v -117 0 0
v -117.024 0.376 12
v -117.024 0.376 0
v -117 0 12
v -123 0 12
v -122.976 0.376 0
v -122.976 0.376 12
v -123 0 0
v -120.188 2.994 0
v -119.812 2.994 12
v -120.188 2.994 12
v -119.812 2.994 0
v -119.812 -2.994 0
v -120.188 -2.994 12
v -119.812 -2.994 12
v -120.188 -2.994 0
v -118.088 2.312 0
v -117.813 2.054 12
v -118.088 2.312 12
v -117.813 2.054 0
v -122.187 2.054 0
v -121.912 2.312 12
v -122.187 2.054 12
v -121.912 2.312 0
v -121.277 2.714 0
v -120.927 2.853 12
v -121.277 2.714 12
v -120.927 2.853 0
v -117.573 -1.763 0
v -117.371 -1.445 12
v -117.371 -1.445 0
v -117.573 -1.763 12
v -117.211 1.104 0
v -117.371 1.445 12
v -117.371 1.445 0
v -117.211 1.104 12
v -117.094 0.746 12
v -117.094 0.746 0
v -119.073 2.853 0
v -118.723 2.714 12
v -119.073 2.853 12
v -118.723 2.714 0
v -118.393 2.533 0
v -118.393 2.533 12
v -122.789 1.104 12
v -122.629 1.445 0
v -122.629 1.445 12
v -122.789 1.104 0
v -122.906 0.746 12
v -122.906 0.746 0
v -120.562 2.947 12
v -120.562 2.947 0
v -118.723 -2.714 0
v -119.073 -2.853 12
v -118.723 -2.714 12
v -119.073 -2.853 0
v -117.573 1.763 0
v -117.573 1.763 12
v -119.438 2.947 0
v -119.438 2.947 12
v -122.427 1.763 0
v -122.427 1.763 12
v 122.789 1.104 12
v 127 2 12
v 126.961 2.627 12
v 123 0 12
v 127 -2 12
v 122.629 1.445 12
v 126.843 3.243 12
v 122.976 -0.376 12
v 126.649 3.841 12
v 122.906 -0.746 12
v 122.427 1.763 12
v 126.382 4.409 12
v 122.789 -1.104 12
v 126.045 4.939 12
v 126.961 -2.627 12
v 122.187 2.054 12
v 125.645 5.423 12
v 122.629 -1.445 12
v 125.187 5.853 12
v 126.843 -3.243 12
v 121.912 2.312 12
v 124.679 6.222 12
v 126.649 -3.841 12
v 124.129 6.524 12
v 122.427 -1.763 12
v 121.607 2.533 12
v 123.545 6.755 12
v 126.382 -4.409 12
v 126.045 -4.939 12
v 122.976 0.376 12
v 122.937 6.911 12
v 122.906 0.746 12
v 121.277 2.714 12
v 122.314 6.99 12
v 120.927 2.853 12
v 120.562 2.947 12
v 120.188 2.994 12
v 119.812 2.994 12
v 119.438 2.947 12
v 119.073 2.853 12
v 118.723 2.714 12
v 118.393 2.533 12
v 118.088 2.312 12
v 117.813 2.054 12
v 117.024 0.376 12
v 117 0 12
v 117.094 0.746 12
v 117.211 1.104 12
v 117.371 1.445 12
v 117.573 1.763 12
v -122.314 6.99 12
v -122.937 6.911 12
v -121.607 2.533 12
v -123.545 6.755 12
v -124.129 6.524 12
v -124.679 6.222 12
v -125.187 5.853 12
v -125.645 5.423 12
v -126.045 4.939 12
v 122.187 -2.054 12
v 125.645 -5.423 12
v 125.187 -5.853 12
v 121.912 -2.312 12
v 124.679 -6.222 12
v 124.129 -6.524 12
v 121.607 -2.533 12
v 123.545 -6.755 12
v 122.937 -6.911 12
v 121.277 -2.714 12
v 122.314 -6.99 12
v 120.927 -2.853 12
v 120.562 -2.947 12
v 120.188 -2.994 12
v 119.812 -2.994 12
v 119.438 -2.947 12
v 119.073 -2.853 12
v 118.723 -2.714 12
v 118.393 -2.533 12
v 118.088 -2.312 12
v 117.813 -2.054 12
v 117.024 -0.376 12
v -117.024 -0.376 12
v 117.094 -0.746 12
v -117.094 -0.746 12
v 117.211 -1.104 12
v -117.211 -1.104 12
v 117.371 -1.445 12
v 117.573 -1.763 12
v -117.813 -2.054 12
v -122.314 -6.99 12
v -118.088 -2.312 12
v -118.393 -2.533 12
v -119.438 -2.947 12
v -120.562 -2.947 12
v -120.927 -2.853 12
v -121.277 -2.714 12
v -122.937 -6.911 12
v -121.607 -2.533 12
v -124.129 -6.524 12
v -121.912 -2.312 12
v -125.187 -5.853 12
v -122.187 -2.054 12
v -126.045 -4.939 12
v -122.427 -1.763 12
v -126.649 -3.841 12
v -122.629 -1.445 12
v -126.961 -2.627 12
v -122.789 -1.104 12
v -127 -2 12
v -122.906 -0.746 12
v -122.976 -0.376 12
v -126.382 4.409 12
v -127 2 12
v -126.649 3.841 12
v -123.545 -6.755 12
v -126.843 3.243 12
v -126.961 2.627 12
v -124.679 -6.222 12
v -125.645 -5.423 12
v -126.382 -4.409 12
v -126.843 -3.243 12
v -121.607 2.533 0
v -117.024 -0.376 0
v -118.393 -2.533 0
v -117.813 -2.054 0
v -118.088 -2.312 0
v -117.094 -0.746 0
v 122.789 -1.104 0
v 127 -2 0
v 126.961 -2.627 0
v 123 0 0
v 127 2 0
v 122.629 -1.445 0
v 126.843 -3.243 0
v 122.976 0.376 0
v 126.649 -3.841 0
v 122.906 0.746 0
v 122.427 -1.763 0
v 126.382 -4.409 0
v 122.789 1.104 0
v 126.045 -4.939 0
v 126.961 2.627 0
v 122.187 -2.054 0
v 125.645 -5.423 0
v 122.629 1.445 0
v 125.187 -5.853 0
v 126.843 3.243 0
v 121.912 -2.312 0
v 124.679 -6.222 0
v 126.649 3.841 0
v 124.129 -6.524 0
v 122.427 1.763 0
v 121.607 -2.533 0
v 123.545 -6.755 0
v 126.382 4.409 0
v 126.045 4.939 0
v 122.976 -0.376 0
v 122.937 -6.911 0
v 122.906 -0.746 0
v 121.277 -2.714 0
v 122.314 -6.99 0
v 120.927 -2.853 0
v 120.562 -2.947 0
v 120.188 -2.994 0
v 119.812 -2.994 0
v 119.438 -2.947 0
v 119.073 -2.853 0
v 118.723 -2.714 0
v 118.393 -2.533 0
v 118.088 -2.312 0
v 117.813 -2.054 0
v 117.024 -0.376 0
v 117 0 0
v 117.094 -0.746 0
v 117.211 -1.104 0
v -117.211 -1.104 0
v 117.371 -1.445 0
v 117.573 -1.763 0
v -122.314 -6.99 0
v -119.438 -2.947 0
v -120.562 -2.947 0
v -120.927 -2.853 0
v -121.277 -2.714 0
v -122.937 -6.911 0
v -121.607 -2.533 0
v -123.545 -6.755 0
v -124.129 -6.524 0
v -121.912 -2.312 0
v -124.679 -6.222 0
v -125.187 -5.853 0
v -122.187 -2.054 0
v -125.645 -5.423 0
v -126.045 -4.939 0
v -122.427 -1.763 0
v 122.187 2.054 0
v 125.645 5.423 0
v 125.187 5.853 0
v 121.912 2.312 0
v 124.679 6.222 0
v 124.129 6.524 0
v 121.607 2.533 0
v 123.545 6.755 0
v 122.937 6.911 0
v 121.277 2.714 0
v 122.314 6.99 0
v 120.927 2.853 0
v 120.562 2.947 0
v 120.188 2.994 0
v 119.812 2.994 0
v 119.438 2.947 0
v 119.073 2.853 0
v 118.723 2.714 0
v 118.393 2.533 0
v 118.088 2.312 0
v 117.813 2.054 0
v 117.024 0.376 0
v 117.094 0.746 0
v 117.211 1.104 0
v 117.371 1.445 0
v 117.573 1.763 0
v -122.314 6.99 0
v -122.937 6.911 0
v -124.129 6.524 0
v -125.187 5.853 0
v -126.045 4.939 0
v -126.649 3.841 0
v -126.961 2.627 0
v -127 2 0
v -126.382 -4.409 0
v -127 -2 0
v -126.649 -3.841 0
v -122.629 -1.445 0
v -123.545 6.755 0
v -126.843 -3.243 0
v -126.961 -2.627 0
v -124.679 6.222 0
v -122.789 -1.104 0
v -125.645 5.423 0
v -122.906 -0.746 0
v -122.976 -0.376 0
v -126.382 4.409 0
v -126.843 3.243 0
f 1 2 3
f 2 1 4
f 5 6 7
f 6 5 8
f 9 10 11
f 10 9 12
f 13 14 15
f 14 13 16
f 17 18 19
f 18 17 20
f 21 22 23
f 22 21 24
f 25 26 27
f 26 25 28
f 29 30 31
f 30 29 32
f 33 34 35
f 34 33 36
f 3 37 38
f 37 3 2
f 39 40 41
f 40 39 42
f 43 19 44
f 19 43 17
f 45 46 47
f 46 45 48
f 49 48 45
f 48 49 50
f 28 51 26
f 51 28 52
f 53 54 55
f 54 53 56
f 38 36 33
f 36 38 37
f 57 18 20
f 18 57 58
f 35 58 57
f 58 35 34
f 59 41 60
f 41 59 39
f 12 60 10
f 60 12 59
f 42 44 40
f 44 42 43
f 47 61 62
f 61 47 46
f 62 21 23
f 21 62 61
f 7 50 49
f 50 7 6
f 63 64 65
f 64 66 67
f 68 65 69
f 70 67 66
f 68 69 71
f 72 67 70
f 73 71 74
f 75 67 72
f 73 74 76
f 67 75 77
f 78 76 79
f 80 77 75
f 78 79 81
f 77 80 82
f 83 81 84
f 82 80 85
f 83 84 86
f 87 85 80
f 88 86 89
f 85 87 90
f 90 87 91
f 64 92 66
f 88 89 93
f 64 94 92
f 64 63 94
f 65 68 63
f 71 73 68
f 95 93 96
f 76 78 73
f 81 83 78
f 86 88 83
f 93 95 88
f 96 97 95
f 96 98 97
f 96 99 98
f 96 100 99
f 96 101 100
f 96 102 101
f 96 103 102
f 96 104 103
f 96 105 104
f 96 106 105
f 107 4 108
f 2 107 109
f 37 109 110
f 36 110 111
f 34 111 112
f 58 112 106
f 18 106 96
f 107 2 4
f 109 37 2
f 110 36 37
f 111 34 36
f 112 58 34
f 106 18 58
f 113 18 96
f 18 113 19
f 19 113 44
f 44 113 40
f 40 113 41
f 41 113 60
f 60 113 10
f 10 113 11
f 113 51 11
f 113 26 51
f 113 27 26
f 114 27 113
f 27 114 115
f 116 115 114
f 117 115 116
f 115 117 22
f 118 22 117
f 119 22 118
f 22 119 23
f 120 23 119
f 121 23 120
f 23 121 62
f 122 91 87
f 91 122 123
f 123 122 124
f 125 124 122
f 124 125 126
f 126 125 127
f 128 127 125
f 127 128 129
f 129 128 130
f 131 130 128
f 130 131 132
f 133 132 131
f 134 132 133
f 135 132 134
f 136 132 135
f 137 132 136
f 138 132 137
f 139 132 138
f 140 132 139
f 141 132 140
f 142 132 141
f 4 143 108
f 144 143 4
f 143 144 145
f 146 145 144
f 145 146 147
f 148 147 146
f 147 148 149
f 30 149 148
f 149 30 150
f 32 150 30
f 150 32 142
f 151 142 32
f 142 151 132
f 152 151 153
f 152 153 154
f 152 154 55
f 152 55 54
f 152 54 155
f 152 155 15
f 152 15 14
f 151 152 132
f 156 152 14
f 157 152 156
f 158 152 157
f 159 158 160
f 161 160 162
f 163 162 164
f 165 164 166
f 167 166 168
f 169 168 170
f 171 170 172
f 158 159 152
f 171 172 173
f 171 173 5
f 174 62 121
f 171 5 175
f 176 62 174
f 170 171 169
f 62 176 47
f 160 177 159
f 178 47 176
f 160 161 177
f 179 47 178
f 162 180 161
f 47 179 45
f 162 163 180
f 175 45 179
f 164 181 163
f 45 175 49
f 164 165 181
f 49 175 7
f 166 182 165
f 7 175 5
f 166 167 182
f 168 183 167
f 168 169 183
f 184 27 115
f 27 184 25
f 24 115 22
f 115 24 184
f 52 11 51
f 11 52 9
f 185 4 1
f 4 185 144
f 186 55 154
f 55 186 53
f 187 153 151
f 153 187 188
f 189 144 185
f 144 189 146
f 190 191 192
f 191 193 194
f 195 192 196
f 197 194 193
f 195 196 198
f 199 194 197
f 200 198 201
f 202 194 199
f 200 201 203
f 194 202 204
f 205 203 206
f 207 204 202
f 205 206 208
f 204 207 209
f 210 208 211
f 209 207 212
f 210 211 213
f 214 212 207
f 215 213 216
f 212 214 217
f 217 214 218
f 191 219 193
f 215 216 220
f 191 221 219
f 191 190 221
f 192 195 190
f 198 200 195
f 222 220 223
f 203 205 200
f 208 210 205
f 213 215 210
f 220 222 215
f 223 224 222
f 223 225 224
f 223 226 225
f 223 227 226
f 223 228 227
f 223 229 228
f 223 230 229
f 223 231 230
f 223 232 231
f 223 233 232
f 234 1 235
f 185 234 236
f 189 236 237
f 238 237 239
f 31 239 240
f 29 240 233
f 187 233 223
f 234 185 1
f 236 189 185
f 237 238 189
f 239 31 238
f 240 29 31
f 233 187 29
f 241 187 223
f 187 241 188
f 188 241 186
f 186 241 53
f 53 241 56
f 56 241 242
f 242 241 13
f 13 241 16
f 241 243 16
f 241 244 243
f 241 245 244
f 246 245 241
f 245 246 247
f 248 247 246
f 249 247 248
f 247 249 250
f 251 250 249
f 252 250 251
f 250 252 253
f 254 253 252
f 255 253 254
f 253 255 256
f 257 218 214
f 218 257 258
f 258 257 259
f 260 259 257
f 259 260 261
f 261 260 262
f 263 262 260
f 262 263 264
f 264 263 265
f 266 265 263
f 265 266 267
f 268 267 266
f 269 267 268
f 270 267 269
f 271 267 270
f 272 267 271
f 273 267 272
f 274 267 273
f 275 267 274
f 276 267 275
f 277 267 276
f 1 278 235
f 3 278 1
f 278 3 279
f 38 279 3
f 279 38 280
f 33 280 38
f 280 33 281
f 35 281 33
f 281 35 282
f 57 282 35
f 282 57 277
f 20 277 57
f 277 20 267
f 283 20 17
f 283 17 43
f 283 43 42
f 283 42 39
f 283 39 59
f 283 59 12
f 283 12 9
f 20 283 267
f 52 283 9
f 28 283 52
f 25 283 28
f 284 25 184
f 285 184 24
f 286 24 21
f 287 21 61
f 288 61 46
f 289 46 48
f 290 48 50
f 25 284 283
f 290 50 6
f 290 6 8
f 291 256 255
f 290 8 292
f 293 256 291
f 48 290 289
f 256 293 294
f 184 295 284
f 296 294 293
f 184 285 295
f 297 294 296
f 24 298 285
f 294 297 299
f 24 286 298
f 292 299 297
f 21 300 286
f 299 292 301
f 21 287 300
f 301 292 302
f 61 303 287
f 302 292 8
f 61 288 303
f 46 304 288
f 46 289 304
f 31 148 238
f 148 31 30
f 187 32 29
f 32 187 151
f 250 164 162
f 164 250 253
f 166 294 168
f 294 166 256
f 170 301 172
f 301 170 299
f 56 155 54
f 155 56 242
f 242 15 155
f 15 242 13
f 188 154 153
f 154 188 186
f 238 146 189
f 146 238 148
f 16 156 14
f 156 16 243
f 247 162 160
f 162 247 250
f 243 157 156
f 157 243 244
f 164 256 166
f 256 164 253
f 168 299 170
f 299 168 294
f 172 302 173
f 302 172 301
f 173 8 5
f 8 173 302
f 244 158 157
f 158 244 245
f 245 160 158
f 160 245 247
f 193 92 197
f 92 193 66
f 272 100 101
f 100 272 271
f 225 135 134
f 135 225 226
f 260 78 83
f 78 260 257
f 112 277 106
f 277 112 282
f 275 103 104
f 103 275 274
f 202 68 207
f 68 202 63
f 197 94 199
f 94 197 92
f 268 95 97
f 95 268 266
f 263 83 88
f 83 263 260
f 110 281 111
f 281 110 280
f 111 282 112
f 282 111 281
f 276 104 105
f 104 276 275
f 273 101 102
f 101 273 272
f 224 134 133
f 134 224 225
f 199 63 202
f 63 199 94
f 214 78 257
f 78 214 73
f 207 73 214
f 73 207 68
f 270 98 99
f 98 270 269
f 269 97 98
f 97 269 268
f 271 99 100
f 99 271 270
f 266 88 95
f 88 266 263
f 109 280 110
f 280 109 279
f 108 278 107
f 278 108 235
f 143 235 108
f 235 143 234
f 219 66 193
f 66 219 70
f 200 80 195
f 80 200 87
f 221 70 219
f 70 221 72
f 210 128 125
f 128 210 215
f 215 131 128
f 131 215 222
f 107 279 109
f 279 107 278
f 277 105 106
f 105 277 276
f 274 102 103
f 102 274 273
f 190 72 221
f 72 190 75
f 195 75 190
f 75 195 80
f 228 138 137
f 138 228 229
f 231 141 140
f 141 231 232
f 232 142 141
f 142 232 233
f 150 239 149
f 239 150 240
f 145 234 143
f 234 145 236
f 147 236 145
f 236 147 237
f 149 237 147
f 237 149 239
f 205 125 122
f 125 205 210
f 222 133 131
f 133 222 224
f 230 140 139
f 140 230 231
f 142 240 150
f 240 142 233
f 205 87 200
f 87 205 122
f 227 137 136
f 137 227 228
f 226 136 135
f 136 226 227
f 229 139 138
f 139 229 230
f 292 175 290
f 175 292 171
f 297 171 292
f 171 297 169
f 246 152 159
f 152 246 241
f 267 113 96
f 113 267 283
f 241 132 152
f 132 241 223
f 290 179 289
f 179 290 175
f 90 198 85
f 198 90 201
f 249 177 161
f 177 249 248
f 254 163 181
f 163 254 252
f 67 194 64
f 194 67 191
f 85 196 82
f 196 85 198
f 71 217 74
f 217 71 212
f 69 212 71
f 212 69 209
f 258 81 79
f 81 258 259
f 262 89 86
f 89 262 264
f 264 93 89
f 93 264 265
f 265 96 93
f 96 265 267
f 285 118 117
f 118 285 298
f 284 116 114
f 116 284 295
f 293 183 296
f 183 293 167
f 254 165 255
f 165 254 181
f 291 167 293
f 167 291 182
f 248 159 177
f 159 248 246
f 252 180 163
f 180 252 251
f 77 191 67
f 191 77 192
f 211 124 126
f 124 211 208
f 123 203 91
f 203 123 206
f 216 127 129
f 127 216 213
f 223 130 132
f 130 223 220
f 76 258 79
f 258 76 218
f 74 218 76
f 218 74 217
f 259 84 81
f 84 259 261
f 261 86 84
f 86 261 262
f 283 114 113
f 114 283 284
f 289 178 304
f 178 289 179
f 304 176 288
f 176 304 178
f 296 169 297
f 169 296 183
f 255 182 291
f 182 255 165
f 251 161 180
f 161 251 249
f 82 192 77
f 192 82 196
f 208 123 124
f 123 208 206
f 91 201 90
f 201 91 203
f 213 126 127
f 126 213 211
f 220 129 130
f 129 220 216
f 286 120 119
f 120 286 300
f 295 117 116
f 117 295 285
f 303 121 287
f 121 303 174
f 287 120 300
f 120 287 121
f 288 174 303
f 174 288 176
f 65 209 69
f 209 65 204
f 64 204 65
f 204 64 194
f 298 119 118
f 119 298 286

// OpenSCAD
$fn = 50;


difference() {
	union() {
		hull() {
			translate(v = [-122.0000000000, 2.0000000000, 0]) {
				cylinder(h = 12, r = 5);
			}
			translate(v = [122.0000000000, 2.0000000000, 0]) {
				cylinder(h = 12, r = 5);
			}
			translate(v = [-122.0000000000, -2.0000000000, 0]) {
				cylinder(h = 12, r = 5);
			}
			translate(v = [122.0000000000, -2.0000000000, 0]) {
				cylinder(h = 12, r = 5);
			}
		}
	}
	union() {
		translate(v = [-120.0000000000, 0.0000000000, 0]) {
			cylinder(h = 12, r = 3.0000000000);
		}
		translate(v = [120.0000000000, 0.0000000000, 0]) {
			cylinder(h = 12, r = 3.0000000000);
		}
		translate(v = [-120.0000000000, 0.0000000000, 0]) {
			cylinder(h = 12, r = 1.5000000000);
		}
		translate(v = [120.0000000000, 0.0000000000, 0]) {
			cylinder(h = 12, r = 1.5000000000);
		}
		translate(v = [-120.0000000000, 0.0000000000, 0]) {
			cylinder(h = 12, r = 1.5000000000);
		}
		translate(v = [120.0000000000, 0.0000000000, 0]) {
			cylinder(h = 12, r = 1.5000000000);
		}
		translate(v = [-120.0000000000, 0.0000000000, 0]) {
			cylinder(h = 12, r = 1.5000000000);
		}
		translate(v = [120.0000000000, 0.0000000000, 0]) {
			cylinder(h = 12, r = 1.5000000000);
		}
	}
}
